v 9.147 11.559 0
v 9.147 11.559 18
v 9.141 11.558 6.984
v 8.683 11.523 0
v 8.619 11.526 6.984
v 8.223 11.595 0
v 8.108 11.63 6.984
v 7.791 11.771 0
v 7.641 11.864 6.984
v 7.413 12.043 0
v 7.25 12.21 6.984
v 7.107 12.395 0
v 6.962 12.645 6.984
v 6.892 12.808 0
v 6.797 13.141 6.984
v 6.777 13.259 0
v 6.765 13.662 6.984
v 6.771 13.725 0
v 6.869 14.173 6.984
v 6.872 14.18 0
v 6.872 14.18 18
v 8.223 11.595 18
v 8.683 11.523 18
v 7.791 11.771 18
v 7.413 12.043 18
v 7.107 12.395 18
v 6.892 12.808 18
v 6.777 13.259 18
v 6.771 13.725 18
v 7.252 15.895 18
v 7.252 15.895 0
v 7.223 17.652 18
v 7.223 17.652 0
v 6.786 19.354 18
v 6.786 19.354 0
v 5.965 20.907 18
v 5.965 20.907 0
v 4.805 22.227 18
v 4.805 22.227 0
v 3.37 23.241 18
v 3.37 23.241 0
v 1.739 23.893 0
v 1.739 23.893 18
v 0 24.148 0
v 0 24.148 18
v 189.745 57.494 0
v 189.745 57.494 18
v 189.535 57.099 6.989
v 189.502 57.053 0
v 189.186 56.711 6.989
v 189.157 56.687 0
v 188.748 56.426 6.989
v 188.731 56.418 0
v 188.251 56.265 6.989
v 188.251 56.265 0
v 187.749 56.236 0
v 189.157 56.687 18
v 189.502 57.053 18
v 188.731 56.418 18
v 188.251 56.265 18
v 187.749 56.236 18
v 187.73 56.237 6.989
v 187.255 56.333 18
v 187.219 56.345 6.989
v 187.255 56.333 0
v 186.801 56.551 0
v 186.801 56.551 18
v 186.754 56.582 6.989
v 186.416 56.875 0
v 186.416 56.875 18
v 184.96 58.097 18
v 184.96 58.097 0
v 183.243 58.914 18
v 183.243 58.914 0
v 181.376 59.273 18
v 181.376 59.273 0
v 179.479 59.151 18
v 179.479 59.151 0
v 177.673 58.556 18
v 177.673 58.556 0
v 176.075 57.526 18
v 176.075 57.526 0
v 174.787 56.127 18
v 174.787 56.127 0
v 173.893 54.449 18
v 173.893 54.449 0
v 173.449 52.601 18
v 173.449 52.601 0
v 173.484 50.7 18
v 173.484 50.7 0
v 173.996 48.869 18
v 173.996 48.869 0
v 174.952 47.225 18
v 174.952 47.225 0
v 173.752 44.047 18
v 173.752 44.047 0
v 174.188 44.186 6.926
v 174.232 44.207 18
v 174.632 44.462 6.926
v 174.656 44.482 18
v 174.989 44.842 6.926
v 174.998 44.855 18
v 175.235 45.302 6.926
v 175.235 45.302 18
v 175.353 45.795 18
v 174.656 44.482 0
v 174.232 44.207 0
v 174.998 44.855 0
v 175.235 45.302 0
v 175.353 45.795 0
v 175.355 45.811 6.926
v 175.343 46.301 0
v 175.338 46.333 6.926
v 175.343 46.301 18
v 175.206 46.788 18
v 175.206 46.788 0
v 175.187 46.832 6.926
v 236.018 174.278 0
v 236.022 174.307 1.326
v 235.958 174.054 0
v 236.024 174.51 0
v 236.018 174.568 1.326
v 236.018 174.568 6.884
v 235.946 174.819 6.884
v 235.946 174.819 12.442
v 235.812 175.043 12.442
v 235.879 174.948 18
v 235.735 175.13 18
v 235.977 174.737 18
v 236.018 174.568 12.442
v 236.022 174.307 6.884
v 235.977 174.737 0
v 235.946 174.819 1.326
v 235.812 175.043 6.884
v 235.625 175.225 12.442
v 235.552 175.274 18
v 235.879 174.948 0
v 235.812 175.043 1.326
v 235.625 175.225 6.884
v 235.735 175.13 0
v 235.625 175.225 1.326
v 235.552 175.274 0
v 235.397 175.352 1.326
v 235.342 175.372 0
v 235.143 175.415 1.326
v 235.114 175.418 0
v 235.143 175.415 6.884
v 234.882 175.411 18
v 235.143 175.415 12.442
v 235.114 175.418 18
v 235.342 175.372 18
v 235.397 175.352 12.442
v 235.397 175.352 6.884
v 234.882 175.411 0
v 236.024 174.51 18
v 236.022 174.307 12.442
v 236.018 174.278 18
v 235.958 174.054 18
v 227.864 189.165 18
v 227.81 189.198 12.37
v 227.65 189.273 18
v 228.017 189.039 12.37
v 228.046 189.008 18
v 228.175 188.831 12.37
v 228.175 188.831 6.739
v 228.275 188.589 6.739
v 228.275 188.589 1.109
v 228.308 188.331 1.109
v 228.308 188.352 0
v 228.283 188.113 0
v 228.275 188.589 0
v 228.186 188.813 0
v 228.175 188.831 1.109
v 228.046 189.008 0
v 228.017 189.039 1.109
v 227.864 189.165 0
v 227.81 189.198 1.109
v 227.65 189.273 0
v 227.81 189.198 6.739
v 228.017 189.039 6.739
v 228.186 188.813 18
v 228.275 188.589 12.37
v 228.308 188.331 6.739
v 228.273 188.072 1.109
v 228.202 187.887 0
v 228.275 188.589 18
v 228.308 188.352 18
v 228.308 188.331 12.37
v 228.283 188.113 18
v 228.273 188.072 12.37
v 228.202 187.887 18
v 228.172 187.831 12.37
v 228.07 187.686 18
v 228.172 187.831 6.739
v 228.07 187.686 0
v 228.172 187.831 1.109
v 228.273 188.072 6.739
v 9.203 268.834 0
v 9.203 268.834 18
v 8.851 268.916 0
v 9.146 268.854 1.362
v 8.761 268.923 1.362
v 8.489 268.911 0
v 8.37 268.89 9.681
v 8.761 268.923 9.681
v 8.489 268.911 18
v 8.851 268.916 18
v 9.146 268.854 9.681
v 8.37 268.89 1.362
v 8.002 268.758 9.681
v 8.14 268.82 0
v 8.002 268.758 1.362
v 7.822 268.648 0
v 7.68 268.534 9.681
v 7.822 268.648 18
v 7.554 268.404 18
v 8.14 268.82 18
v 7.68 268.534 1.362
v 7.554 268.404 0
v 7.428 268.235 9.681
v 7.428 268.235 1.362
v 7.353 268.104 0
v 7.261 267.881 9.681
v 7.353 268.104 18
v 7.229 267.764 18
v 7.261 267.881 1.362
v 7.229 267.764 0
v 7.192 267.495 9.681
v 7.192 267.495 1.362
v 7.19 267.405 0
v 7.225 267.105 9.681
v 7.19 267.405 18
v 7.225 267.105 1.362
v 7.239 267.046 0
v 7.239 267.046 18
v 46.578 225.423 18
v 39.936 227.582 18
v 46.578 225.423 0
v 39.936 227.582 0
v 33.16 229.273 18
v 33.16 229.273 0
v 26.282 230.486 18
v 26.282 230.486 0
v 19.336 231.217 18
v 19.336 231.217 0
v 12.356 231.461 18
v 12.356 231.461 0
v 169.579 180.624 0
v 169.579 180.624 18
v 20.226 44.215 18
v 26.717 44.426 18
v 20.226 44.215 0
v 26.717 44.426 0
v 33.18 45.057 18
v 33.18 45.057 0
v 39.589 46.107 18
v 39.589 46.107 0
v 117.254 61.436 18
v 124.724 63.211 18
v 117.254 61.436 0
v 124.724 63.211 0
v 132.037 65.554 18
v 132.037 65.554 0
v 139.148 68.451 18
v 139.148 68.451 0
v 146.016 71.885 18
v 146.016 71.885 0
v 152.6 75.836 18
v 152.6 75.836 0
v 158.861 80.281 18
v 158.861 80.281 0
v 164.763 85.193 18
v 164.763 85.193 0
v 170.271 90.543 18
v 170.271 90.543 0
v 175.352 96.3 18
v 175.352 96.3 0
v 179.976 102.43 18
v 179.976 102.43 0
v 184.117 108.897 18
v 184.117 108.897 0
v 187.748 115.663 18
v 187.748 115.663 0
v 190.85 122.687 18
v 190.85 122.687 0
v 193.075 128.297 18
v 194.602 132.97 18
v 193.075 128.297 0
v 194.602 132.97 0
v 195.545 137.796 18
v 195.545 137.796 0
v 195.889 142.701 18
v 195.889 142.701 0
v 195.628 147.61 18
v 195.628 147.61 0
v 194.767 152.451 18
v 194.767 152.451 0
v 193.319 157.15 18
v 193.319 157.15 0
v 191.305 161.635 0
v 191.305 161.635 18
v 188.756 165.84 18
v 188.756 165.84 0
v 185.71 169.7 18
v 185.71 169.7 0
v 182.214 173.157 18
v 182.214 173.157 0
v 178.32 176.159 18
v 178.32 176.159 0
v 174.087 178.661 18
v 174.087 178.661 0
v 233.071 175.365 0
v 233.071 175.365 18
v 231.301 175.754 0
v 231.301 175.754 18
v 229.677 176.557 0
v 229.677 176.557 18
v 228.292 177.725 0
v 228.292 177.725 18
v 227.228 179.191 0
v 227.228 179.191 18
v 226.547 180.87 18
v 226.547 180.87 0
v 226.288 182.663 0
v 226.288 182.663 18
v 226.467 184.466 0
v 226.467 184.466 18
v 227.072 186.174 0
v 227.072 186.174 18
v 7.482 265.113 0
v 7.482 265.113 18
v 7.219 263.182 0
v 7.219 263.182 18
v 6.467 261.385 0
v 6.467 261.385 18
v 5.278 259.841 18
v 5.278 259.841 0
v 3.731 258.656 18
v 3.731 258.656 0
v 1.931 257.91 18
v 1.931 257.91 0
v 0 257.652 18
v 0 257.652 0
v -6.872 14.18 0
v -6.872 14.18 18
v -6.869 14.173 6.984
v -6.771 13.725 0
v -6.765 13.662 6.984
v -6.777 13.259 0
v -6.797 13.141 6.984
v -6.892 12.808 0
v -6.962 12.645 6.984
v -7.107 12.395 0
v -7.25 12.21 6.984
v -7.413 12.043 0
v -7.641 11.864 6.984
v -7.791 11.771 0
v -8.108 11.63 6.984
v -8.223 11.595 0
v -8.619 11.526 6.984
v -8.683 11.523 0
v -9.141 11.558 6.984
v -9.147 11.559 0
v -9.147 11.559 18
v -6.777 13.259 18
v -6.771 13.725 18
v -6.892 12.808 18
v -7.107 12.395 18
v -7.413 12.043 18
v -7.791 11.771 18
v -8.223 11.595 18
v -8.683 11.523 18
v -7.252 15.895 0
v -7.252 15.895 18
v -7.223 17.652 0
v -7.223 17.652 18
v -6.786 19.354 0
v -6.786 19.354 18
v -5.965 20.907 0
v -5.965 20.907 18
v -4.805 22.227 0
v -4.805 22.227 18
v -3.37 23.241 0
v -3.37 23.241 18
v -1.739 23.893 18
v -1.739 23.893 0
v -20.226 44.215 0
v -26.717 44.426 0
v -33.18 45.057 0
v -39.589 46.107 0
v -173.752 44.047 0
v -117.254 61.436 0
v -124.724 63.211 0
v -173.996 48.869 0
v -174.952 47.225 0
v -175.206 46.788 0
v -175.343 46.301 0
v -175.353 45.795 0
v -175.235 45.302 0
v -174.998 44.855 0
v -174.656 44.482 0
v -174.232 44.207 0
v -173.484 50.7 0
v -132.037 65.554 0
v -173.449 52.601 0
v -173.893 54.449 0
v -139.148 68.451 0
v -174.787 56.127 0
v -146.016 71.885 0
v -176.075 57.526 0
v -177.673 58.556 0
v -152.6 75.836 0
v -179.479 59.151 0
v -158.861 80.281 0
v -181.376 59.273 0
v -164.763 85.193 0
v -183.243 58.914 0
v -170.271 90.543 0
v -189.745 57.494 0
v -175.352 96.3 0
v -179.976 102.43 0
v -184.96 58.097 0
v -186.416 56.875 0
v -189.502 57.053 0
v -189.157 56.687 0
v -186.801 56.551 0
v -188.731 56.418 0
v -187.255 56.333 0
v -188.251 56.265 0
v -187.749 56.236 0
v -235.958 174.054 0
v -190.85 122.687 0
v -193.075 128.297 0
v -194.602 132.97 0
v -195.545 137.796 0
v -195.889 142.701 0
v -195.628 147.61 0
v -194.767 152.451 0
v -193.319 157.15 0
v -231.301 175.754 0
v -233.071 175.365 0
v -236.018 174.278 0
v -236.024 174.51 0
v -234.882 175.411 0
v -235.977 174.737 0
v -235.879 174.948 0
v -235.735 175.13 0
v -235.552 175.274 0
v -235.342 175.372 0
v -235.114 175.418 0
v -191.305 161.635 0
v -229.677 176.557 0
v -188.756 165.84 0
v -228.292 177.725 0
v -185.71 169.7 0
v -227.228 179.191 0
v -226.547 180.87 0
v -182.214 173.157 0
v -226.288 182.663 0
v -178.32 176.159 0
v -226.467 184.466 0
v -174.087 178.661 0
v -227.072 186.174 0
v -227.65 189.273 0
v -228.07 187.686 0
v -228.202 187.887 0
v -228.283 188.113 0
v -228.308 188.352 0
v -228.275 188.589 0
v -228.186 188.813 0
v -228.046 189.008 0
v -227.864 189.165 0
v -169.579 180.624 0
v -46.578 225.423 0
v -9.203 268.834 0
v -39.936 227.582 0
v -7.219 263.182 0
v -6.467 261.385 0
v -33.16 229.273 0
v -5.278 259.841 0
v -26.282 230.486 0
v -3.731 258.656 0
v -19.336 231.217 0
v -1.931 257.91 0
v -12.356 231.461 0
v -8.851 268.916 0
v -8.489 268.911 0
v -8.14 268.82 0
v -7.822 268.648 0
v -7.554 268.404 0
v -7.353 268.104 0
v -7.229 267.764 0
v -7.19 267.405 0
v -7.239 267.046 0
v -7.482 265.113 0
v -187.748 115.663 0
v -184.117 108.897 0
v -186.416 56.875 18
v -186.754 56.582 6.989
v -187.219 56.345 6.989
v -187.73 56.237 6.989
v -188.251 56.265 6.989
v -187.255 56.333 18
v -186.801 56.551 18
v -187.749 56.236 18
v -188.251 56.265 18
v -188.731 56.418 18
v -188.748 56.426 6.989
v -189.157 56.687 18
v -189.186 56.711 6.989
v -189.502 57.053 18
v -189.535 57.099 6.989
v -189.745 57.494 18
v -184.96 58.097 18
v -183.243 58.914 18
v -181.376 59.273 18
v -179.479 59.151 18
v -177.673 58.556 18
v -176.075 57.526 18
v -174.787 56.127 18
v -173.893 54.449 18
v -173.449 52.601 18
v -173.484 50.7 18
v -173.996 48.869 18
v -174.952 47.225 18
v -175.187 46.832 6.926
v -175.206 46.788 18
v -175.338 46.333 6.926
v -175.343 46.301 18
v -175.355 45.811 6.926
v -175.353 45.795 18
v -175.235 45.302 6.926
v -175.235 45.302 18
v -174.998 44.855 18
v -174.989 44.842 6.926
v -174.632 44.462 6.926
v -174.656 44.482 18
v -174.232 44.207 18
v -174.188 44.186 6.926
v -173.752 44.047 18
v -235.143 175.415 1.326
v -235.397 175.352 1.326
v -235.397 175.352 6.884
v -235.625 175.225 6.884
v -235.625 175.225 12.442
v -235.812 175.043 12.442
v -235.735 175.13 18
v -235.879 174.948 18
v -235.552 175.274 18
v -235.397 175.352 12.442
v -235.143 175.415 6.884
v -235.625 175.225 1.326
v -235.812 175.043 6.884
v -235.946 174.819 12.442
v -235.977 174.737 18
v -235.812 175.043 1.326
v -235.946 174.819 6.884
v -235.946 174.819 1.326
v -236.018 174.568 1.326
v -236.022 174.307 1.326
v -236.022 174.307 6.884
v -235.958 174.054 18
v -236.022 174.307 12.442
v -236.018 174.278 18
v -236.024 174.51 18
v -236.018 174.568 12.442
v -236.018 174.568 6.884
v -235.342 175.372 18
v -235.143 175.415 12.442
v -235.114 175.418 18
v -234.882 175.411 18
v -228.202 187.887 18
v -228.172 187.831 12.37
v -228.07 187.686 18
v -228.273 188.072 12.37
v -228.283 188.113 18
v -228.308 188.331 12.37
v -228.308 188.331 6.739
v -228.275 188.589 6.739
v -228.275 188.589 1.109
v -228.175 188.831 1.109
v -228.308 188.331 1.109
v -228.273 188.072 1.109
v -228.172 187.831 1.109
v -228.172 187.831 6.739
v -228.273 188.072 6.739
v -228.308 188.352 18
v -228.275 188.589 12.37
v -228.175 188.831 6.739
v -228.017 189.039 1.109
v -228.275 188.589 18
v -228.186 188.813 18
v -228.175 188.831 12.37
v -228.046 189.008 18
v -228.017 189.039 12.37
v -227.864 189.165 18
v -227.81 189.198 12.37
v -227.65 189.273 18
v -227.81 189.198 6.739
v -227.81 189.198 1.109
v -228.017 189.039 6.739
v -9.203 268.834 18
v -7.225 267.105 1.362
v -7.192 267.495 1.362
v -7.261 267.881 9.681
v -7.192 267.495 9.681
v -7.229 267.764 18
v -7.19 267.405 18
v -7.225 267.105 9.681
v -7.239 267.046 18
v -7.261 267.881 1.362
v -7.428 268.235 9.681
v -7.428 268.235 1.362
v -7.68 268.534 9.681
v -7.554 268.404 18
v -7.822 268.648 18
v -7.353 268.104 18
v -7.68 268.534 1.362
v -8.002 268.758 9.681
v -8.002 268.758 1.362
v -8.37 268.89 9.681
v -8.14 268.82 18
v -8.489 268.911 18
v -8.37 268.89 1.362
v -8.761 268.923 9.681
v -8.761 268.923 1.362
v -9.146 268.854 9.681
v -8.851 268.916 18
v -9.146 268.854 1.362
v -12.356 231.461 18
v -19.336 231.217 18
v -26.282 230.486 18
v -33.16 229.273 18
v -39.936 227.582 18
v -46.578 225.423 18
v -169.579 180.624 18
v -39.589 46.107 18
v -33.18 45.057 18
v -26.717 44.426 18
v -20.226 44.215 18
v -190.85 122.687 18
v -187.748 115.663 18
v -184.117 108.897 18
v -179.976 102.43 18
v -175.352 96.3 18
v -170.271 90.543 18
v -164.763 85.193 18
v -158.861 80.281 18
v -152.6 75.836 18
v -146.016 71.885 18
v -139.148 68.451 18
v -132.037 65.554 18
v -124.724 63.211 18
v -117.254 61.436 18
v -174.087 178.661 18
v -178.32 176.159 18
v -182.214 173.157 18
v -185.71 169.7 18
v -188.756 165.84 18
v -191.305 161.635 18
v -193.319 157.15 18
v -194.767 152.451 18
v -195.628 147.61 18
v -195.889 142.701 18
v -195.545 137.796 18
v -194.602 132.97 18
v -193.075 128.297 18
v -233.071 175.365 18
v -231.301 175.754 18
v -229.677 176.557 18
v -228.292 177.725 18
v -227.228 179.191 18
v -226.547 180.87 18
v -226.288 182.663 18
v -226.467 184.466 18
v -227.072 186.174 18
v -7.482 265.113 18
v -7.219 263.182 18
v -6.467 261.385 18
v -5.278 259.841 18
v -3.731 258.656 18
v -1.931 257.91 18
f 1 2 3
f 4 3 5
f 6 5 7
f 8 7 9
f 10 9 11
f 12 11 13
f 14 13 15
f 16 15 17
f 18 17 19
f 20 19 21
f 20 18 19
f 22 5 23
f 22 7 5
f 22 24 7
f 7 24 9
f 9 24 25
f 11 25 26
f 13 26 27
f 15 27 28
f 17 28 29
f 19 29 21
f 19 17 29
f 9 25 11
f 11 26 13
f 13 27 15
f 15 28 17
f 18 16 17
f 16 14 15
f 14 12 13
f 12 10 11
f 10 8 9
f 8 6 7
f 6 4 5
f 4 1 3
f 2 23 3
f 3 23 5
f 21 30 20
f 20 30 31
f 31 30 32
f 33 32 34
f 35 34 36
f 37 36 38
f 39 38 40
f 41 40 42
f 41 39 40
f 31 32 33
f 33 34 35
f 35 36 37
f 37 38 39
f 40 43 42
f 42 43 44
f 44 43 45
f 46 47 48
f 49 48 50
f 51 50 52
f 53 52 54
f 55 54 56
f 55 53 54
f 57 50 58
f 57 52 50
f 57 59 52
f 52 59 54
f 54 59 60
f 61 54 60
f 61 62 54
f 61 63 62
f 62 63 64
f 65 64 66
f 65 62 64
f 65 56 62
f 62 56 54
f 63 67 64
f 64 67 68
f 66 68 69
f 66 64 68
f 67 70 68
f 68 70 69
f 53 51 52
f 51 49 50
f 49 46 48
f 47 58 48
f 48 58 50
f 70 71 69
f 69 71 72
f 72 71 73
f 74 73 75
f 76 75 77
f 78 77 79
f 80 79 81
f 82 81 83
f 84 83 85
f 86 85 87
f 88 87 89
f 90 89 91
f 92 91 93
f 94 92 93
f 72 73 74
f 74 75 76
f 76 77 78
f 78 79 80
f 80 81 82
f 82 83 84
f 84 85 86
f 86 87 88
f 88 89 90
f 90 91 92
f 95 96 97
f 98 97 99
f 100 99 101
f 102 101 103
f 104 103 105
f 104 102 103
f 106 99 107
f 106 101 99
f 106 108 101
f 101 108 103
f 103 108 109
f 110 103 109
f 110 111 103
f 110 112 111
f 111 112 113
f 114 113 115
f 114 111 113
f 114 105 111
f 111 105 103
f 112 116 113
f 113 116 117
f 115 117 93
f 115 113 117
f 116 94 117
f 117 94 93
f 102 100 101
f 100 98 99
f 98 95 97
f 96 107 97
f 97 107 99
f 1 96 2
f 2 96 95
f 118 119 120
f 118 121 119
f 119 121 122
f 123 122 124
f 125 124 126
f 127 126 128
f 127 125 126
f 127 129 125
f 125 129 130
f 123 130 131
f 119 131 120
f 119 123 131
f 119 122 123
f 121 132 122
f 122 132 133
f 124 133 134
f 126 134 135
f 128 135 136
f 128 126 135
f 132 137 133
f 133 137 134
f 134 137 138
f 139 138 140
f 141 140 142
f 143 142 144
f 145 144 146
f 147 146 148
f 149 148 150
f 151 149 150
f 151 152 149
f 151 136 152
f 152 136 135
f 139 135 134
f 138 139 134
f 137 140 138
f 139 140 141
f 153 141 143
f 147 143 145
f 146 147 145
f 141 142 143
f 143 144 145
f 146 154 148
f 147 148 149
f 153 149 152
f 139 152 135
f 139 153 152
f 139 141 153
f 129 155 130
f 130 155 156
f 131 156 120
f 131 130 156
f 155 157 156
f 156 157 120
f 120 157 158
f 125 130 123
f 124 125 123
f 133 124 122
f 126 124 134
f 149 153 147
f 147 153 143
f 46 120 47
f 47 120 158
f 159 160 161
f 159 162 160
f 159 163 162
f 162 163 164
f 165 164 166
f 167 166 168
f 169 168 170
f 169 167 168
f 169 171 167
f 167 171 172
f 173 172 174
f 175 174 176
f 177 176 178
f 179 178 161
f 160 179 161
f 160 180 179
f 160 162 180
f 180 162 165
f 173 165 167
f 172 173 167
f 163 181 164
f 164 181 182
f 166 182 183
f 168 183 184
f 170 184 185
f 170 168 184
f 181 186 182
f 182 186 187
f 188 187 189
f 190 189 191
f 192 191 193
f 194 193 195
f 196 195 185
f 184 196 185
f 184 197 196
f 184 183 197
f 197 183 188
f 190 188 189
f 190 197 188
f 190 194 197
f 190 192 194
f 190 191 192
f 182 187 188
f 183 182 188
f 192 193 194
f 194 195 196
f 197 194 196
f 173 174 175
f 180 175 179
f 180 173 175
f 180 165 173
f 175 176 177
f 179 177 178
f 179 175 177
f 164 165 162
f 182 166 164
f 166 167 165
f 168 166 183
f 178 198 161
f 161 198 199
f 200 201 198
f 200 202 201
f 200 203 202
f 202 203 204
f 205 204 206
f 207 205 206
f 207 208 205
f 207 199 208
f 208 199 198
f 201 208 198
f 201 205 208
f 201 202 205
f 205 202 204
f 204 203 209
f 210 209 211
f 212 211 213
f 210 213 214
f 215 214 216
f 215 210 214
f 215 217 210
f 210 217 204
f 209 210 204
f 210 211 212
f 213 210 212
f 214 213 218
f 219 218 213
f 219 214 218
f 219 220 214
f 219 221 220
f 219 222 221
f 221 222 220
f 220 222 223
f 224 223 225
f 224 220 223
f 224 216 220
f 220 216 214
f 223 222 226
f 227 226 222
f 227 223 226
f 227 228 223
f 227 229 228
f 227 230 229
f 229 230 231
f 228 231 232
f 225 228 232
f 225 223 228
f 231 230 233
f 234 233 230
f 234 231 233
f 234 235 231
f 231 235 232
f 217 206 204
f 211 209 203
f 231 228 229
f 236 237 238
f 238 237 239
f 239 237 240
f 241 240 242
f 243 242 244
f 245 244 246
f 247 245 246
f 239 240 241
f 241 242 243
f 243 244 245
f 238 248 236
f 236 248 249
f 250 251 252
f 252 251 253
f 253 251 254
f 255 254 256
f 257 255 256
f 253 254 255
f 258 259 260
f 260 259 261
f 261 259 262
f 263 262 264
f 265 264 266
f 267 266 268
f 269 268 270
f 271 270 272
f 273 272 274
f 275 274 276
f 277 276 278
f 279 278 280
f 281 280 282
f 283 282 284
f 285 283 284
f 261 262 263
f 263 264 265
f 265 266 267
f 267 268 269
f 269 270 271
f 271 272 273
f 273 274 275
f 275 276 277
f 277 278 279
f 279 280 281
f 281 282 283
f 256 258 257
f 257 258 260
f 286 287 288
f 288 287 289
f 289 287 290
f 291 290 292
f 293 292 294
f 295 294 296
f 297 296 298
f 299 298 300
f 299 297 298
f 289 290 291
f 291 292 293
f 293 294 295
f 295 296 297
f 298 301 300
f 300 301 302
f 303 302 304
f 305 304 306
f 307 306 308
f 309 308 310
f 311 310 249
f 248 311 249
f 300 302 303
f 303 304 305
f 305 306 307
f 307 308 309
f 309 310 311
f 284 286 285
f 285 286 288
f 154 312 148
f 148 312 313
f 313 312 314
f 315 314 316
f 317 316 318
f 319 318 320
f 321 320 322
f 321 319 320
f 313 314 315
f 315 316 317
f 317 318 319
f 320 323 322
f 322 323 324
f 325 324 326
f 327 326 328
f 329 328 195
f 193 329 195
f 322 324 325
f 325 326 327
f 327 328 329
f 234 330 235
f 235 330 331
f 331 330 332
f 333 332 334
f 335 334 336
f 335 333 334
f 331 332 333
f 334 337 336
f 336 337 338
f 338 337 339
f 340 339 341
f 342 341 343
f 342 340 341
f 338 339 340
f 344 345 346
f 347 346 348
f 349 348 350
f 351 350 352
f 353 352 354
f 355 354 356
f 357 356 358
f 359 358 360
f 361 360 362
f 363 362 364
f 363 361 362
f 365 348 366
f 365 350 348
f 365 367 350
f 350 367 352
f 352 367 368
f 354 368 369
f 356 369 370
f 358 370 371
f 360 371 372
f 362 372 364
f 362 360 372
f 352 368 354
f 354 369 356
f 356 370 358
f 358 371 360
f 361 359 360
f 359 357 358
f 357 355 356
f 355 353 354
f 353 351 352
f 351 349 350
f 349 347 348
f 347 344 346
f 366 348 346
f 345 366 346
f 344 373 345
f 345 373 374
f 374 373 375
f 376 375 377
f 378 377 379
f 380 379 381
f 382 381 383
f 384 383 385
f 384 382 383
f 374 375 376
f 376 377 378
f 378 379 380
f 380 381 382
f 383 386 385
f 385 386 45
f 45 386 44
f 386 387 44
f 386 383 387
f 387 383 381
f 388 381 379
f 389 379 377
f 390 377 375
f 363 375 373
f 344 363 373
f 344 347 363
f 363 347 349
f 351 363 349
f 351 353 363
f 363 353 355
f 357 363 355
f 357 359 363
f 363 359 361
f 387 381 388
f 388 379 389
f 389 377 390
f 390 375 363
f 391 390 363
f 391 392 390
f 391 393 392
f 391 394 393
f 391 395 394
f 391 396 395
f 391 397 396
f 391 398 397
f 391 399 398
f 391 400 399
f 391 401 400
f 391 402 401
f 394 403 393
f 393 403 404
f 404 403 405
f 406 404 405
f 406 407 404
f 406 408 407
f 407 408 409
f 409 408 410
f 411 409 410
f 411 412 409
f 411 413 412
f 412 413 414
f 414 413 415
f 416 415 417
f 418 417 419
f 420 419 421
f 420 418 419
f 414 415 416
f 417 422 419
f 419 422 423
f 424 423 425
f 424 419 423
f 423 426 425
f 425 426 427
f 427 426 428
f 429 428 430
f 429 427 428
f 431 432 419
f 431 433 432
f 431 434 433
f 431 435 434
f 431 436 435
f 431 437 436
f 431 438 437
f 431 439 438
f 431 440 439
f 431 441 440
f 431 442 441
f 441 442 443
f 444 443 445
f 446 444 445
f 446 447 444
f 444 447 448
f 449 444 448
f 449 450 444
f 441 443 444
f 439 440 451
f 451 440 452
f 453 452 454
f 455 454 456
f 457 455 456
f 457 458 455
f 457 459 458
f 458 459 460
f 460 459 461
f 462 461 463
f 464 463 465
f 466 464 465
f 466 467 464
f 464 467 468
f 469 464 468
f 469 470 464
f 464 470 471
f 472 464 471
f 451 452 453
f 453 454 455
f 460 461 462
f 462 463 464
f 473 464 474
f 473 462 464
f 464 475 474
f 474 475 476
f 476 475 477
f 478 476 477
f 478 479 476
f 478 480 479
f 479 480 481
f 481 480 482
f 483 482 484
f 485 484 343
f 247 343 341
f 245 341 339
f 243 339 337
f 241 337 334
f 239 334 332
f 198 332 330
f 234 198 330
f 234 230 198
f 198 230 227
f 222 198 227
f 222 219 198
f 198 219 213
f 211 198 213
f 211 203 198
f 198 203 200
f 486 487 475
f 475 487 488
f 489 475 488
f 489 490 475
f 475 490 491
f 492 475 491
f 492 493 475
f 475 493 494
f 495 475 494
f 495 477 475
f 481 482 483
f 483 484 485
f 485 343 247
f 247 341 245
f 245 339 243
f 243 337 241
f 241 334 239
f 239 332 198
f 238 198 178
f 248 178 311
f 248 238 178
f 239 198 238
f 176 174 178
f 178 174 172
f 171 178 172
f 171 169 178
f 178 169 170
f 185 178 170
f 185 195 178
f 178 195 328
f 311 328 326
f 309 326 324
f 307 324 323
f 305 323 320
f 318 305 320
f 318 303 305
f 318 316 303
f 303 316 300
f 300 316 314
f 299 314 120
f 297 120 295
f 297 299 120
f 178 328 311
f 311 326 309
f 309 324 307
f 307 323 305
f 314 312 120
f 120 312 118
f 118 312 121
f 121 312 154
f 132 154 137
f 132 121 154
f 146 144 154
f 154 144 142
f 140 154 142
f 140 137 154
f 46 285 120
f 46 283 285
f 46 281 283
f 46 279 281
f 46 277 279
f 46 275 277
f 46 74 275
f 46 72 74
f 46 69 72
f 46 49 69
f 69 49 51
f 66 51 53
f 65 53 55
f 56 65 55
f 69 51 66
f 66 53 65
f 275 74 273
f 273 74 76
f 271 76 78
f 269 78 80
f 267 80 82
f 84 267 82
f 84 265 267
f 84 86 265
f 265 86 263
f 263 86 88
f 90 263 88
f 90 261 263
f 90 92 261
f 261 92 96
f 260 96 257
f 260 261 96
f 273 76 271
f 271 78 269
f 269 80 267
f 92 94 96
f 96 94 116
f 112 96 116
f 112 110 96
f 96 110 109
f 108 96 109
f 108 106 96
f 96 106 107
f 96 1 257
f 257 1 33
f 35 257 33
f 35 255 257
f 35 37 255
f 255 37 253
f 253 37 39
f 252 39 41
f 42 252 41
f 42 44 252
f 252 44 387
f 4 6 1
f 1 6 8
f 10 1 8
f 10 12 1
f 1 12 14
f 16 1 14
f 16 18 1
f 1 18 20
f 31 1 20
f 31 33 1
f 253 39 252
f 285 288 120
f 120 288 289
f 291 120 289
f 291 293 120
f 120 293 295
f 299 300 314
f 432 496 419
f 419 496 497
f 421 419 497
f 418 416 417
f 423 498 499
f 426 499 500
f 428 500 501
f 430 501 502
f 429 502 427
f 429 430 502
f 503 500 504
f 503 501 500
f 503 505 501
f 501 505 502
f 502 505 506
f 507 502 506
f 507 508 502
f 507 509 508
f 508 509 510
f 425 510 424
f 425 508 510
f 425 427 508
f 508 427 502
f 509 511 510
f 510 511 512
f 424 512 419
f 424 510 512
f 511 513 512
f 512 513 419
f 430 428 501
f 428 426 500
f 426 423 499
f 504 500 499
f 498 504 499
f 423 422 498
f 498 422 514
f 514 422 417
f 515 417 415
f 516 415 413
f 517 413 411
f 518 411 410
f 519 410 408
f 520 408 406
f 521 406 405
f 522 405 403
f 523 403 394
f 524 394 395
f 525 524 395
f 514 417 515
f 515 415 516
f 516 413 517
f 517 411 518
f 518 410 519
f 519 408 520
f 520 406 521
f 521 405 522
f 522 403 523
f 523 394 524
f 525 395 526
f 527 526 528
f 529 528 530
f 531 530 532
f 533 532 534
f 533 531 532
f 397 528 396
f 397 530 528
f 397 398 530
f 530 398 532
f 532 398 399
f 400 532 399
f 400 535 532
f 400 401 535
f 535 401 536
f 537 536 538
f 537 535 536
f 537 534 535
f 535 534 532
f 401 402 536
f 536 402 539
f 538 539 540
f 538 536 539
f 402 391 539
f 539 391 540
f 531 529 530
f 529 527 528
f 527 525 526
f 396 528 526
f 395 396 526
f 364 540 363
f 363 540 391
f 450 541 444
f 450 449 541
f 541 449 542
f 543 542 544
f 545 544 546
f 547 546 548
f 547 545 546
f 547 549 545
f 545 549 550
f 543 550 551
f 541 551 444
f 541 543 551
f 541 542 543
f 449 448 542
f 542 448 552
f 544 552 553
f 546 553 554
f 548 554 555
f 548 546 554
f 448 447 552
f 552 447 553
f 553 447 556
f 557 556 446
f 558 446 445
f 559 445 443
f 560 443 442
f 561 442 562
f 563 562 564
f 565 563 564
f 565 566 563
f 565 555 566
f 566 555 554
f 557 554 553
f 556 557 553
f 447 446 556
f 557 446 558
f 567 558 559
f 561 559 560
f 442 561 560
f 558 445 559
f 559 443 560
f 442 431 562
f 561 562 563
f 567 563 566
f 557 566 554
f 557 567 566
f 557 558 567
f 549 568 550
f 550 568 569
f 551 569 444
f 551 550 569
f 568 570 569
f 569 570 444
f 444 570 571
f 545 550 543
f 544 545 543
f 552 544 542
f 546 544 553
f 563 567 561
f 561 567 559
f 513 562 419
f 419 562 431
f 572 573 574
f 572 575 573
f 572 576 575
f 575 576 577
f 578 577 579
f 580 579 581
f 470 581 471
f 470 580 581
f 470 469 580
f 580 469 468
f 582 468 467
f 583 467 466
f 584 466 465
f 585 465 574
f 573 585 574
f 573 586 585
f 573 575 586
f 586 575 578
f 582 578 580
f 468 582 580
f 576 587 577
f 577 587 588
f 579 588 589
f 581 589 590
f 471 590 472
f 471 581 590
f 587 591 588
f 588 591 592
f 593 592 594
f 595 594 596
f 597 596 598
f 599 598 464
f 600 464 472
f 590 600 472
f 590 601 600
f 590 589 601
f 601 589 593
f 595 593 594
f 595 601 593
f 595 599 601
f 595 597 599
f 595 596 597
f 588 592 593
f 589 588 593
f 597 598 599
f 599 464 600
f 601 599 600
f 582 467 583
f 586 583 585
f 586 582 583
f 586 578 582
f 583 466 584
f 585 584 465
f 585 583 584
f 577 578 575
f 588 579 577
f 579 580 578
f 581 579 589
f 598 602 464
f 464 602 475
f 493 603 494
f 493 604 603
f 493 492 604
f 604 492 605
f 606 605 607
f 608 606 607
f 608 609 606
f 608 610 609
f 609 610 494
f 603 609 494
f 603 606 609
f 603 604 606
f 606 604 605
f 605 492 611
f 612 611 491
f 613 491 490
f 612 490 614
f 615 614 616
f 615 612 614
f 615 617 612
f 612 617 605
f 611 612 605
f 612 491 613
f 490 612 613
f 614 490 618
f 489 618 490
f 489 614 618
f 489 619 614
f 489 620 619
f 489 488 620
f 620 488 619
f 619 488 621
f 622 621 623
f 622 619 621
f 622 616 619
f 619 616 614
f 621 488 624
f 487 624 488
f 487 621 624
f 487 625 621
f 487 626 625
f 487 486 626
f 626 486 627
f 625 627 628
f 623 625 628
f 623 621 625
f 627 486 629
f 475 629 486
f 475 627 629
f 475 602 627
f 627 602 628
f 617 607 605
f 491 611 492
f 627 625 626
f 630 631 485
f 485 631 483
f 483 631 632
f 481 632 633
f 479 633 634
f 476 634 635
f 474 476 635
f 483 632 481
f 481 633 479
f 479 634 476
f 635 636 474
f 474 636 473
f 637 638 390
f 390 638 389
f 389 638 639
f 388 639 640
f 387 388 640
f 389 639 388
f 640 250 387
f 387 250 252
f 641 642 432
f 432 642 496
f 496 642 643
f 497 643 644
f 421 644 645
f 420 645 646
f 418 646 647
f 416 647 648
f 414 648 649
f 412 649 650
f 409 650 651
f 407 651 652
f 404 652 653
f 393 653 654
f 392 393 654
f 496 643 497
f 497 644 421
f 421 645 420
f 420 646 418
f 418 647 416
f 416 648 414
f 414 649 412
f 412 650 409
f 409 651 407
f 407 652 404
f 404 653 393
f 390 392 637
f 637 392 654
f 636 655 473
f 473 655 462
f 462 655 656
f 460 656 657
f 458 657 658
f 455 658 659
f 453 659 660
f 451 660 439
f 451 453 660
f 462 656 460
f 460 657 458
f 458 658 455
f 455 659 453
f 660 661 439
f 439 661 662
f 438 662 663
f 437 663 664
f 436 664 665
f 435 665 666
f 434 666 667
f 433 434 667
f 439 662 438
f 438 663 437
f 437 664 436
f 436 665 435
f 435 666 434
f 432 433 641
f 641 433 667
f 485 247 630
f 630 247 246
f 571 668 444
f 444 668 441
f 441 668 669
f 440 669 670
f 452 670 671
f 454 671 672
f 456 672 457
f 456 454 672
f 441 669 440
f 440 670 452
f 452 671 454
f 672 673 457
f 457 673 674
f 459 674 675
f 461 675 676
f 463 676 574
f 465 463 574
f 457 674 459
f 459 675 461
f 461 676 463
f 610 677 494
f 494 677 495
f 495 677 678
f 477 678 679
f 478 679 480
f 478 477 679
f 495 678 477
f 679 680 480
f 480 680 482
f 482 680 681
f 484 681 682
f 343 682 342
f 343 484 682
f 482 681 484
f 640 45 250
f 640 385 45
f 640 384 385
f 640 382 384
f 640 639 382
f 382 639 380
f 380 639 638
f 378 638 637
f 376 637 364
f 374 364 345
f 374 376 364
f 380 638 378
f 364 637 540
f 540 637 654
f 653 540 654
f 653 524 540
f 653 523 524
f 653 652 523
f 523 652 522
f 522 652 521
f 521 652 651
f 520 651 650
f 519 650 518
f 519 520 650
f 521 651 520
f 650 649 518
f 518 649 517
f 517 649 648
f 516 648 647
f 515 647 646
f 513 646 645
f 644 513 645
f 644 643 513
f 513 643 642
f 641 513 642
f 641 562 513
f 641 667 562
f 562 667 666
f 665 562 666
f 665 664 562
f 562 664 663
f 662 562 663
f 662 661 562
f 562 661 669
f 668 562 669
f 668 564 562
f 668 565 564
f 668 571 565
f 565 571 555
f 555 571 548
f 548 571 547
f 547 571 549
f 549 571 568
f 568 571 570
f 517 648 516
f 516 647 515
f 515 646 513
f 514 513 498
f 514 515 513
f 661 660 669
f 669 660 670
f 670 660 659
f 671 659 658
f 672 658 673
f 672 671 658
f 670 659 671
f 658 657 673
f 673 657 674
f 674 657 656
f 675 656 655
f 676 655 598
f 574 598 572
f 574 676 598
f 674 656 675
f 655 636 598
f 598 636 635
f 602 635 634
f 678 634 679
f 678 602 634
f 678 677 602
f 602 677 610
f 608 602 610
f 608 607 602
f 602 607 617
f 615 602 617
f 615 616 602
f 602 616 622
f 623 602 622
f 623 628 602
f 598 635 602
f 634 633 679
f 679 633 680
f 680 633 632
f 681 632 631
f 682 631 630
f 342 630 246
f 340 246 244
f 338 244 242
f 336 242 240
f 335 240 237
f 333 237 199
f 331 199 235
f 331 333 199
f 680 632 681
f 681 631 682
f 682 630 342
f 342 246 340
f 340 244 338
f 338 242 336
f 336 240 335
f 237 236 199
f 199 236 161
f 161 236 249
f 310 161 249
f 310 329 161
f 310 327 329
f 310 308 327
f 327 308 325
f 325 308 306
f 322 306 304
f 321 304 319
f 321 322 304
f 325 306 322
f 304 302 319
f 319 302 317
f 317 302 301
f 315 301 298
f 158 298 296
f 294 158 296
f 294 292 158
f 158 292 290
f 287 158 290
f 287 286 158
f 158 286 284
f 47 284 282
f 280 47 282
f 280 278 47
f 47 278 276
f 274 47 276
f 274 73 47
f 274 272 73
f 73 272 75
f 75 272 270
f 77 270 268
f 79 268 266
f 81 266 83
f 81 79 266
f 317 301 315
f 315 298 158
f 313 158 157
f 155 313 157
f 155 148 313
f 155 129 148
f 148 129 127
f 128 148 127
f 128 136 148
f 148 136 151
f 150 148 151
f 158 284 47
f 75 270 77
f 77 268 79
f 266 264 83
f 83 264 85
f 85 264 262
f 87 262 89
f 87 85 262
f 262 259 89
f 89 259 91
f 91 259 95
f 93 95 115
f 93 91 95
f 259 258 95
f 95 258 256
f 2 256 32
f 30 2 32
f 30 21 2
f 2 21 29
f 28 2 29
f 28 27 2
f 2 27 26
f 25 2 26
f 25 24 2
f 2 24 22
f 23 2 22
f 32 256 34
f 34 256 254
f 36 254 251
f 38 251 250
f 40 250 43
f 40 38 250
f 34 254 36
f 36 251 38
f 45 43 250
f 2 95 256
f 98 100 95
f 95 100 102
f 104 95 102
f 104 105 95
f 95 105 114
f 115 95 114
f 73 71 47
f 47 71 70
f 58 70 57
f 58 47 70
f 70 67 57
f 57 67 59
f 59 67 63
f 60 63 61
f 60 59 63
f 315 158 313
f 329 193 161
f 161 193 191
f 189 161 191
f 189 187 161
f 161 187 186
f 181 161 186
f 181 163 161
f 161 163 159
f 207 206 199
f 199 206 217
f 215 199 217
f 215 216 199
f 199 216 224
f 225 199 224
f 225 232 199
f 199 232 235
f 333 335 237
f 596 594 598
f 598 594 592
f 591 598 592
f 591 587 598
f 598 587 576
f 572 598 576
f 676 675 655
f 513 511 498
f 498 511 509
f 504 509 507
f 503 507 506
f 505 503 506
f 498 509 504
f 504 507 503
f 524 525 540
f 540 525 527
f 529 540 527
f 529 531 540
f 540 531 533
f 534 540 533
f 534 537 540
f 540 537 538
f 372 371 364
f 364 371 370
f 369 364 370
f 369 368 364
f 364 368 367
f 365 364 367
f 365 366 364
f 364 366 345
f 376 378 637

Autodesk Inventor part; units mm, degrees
ref_plane "YZ Plane" through (0, 0, 0) normal (1, 0, 0) x (0, 1, 0)
ref_plane "XZ Plane" through (0, 0, 0) normal (0, 1, 0) x (-1, 0, 0)
ref_plane "XY Plane" through (0, 0, 0) normal (0, 0, 1) x (1, 0, 0)
sketch "Sketch1" plane through (0, 0, 0) normal (0, 0, 1) x (1, 0, 0)
  line L0 (0, 9.7536) -> (-185.3184, 46.3296)
  line L1 (-185.3184, 46.3296) -> (-240.1824, 184.7088)
  line L2 (-240.1824, 184.7088) -> (0, 272.1864)
  line L3 (0, 562.8605) -> (0, -145.2705) construction
  line L4 (0, 272.1864) -> (0, 9.7536)
  point P0 (0, 0)
  dimension "d9" = 272.1864
  dimension "d11" = 240.1824
  dimension "d15" = 184.7088
  dimension "d20" = 185.3184
  dimension "d22" = 46.3296
  dimension "d39" = 0
  dimension "d41" = 0
  dimension "d42" = 9.7536
extrude "Extrusion4" add sketch "Sketch1" along normal blind 18
hole "Hole2" at (0.0182, 265.1521, 18) direction (0, 0, -1) diameter 15 end through all
hole "Hole3" at (-233.7862, 182.8308, 18) direction (0, 0, -1) diameter 15 end through all
hole "Hole4" at (-180.9047, 51.7876, 18) direction (0, 0, -1) diameter 15 end through all
hole "Hole5" at (0.2097, 16.6506, 18) direction (0, 0, -1) diameter 15 end through all
sketch "Sketch6" plane through (0, 0, 18) normal (0, 0, 1) x (1, 0, 0)
  line L0 (-30, 231.4607) -> (-208.2387, 166.5438)
  line L1 (-208.2387, 166.5438) -> (-170.7523, 71.9949)
  line L2 (-170.7523, 71.9949) -> (-30, 44.2148)
  line L3 (-5.5654, 270.1594) -> (-229.1506, 188.7267) projected
  line L4 (-236.6974, 175.9189) -> (-188.1895, 53.5712) projected
  line L5 (-177.9802, 44.8813) -> (-4.1975, 10.582) projected
  line L6 (0, 231.4607) -> (-30, 231.4607)
  line L7 (0, 44.2148) -> (-30, 44.2148)
  line L8 (0, 44.2148) -> (0, 231.4607)
  point P0 (0, 0)
  dimension "d167" = 23
  dimension "d168" = 28
  dimension "d170" = 28
  dimension "d171" = 30
  dimension "d173" = 0
  dimension "d174" = 30
extrude "Extrusion6" cut sketch "Sketch6" against normal through all
fillet "Fillet6" radius 40 1 edges at (-208.2387, 166.5438, 9)
fillet "Fillet7" radius 100 1 edges at (-170.7523, 71.9949, 9)
fillet "Fillet8" radius 100 1 edges at (-30, 44.2148, 9)
fillet "Fillet9" radius 100 1 edges at (-30, 231.4607, 9)
fillet "Fillet10" radius 1.5 1 edges at (-5.5654, 270.1594, 9)
fillet "Fillet11" radius 1 1 edges at (-229.1506, 188.7267, 9)
fillet "Fillet12" radius 1 1 edges at (-236.6974, 175.9189, 9)
fillet "Fillet13" radius 2 1 edges at (-177.9802, 44.8813, 9)
fillet "Fillet14" radius 2 1 edges at (-188.1895, 53.5712, 9)
fillet "Fillet15" radius 2 1 edges at (-4.1975, 10.582, 9)
mirror "Mirror3" about plane through (0, 0, 0) normal (1, 0, 0)
properties part number "section1" material "Polyethylene, High Density"
